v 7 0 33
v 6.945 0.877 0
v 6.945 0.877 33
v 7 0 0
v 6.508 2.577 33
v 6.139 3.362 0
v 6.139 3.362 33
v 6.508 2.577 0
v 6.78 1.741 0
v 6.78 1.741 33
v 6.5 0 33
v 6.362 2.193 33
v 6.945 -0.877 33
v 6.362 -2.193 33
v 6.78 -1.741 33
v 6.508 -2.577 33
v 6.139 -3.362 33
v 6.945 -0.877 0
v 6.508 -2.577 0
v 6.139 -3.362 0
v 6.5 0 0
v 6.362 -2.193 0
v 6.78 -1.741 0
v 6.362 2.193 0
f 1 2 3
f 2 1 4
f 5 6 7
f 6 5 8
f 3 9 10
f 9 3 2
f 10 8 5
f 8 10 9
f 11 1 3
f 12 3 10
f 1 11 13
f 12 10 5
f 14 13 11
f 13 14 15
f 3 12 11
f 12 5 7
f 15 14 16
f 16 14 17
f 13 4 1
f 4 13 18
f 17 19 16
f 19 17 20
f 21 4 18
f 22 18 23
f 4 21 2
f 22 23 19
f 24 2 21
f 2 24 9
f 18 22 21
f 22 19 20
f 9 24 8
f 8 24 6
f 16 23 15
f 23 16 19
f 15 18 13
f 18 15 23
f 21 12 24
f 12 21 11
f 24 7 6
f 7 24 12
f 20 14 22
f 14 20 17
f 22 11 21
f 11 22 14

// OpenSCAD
$fn = 50;


difference() {
	union() {
		cylinder(h = 33, r = 7.0000000000);
		translate(v = [-14.0000000000, 0, 0]) {
			cylinder(h = 33, r = 7.0000000000);
		}
	}
	union() {
		cylinder(h = 33, r = 3.2500000000);
		cylinder(h = 33, r = 1.8000000000);
		cylinder(h = 33, r = 1.8000000000);
		cylinder(h = 33, r = 1.8000000000);
		translate(v = [-18.5000000000, 0, 0]) {
			hull() {
				translate(v = [-3.7500000000, 0.0000000000, 0]) {
					cylinder(h = 33, r = 7.5000000000);
				}
				translate(v = [3.7500000000, 0.0000000000, 0]) {
					cylinder(h = 33, r = 7.5000000000);
				}
				translate(v = [-3.7500000000, -0.0000000000, 0]) {
					cylinder(h = 33, r = 7.5000000000);
				}
				translate(v = [3.7500000000, -0.0000000000, 0]) {
					cylinder(h = 33, r = 7.5000000000);
				}
			}
		}
		translate(v = [-11.0000000000, 0, 0.0000000000]) {
			cylinder(h = 33, r = 17.5000000000);
		}
	}
}
